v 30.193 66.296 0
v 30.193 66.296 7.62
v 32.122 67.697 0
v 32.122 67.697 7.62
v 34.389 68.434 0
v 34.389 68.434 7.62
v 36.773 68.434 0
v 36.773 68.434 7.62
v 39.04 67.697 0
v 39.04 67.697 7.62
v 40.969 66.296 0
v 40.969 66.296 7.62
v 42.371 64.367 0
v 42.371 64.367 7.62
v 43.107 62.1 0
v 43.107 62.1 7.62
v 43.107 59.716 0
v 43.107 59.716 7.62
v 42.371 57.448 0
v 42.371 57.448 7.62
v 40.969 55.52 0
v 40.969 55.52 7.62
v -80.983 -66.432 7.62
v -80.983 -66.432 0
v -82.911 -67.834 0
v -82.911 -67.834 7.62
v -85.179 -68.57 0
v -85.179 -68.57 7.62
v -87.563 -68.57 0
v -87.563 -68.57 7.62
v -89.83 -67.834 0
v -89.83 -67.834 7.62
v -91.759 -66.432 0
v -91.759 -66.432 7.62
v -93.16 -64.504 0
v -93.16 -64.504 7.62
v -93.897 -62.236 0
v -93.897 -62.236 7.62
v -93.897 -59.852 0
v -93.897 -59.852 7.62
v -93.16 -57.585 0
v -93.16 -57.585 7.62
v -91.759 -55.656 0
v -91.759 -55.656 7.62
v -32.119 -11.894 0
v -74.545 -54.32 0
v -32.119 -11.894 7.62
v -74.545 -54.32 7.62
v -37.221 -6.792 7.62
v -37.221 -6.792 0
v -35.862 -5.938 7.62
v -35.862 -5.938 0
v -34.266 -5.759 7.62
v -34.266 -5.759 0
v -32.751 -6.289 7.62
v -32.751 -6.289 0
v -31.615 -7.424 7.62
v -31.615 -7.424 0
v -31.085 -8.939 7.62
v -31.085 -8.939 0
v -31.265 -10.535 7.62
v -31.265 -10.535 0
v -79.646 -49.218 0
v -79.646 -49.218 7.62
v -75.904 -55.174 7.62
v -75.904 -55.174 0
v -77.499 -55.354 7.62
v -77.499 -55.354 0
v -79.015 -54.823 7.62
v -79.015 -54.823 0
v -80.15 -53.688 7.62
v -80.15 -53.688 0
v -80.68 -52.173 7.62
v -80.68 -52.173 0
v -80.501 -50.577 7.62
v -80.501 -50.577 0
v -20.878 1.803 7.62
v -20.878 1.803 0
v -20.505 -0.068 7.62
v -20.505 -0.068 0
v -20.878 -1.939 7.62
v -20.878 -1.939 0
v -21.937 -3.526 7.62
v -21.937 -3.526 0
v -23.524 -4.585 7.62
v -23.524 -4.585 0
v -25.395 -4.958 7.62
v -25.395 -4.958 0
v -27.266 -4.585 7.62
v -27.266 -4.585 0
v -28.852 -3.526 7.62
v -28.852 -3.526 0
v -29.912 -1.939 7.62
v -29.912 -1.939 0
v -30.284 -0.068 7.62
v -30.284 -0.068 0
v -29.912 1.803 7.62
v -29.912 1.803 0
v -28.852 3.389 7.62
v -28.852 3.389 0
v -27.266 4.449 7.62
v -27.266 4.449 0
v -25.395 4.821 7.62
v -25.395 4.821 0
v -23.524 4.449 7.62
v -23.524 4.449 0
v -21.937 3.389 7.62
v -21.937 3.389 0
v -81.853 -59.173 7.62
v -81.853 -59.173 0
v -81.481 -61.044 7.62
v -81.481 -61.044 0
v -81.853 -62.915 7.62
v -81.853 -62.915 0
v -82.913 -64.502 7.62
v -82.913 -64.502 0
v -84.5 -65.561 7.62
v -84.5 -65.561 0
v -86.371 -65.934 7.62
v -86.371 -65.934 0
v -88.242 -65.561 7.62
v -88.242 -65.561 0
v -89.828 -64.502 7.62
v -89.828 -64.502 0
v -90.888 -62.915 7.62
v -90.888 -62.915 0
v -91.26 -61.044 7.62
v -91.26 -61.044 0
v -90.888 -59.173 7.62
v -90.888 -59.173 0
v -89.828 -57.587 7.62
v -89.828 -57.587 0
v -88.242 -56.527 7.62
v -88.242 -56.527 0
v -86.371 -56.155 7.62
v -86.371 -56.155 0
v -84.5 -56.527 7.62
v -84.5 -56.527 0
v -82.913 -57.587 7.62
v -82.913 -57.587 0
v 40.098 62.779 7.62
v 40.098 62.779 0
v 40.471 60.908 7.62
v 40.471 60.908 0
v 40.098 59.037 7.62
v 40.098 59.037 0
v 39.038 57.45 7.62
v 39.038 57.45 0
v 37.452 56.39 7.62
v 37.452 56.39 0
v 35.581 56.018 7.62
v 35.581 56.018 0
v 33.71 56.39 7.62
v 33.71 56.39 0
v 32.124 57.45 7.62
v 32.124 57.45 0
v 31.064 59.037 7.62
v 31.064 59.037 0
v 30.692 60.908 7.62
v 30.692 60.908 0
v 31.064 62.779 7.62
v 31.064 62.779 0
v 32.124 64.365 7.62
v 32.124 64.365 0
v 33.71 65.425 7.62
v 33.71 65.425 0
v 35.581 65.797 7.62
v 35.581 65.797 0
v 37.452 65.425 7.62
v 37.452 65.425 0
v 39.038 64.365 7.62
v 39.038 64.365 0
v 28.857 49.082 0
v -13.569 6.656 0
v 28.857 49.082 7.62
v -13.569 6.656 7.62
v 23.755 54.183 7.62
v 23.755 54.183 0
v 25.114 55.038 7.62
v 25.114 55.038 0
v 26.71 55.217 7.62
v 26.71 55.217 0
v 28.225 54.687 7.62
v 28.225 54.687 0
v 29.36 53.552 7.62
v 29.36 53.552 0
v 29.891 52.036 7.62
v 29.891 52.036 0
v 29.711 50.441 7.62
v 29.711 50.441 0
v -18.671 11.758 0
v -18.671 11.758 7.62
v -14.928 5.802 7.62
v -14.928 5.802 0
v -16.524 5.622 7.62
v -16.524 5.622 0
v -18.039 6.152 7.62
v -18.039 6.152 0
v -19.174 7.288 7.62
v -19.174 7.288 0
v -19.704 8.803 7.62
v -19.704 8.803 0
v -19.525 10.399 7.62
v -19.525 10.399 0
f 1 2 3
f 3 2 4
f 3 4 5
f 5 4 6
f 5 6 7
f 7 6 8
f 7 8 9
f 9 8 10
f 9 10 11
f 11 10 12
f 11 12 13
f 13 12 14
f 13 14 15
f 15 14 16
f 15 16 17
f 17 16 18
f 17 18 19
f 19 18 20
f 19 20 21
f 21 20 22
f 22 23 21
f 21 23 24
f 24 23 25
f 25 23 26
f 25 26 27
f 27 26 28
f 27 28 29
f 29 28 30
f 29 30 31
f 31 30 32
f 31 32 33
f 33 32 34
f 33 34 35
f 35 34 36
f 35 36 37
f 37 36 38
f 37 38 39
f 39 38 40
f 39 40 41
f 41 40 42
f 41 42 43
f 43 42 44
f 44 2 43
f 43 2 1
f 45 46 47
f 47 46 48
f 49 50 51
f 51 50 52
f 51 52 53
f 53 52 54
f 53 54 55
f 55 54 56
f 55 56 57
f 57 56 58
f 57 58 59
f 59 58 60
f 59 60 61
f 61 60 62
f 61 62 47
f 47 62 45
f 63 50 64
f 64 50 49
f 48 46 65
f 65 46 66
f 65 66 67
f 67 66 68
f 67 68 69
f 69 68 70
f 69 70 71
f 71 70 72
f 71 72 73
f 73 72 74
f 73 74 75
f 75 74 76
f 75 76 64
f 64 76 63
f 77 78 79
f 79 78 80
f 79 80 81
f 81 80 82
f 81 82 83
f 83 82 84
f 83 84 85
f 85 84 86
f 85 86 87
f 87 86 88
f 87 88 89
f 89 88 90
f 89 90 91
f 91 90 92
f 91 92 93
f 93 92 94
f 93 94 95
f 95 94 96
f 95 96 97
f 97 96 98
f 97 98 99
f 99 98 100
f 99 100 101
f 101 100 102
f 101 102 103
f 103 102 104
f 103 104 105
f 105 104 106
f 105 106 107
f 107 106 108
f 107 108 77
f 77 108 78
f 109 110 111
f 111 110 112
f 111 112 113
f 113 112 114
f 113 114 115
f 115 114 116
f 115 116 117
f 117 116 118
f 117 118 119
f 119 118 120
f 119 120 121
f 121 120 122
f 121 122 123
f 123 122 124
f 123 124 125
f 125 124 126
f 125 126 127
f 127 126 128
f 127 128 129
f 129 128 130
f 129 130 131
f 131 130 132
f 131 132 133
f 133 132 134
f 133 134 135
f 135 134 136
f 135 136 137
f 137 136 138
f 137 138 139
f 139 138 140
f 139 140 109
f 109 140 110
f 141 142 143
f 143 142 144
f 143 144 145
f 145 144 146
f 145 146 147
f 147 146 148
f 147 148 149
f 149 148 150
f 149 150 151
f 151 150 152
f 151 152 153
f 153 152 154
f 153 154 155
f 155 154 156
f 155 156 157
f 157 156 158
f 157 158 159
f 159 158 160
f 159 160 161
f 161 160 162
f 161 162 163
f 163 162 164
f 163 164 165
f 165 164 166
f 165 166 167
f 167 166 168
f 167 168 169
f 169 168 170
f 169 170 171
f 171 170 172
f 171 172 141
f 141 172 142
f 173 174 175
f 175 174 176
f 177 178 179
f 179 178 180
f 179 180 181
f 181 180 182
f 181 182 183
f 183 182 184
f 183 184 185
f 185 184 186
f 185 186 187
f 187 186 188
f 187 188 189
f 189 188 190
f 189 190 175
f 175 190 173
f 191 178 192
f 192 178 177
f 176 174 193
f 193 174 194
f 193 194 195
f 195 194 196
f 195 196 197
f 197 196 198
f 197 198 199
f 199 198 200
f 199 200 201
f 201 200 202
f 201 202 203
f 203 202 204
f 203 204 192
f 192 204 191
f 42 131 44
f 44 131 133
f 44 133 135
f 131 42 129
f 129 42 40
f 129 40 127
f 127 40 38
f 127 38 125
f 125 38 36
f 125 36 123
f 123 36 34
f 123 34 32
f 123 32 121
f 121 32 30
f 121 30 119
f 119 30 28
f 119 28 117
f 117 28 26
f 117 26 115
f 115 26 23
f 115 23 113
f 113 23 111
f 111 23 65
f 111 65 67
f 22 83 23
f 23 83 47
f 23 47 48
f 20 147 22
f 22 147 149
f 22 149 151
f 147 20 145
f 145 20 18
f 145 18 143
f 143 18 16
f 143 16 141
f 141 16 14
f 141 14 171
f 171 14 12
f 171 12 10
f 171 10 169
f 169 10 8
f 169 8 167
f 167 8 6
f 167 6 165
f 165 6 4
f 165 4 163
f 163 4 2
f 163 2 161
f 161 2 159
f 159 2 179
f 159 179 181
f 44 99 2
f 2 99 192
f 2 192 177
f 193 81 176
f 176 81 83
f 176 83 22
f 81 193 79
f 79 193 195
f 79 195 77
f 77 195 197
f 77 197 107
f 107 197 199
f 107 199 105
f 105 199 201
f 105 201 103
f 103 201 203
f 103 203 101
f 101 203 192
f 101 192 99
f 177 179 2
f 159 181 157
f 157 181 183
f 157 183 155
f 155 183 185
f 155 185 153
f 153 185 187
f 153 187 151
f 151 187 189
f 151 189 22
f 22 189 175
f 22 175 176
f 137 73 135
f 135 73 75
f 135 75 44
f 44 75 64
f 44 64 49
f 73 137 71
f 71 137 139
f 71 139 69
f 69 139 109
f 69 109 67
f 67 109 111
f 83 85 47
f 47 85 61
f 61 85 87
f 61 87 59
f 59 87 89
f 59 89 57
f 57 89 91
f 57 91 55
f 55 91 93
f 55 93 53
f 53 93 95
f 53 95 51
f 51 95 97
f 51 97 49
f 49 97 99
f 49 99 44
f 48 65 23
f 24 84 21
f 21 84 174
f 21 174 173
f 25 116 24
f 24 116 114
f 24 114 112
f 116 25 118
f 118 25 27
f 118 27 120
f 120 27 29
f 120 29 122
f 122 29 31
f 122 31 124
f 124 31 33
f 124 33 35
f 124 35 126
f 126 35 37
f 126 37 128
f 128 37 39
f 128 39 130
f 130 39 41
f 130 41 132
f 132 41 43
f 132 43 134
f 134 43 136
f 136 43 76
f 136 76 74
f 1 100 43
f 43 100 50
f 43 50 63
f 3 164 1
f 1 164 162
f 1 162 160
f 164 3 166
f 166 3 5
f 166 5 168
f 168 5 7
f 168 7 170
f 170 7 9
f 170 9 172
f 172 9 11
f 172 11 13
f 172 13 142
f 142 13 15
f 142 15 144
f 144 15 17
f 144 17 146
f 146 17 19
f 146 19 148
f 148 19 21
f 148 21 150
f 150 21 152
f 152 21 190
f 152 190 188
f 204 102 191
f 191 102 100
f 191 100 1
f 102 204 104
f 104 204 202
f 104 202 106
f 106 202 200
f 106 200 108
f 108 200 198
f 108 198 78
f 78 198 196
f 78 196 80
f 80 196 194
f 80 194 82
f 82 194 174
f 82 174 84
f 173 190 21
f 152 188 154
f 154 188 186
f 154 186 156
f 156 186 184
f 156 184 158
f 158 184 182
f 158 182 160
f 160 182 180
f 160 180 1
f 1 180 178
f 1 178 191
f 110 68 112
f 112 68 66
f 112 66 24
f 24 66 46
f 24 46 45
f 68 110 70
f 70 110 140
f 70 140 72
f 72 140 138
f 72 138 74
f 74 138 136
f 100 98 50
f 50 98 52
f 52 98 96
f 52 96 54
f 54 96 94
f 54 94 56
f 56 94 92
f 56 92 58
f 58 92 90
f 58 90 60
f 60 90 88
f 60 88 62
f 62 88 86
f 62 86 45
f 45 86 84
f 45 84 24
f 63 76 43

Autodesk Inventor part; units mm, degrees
ref_plane "YZ Plane" through (0, 0, 0) normal (1, 0, 0) x (0, 1, 0)
ref_plane "XZ Plane" through (0, 0, 0) normal (0, 1, 0) x (-1, 0, 0)
ref_plane "XY Plane" through (0, 0, 0) normal (0, 0, 1) x (1, 0, 0)
sketch "Sketch1" plane through (0, 0, 0) normal (0, 0, 1) x (1, 0, 0)
  circle A0 centre (-86.3708, -61.0441) radius 4.8895
  circle A1 centre (-86.3708, -61.0441) radius 4.8895
  line L0 (-81.8807, -65.5342) -> (40.0712, 56.4176)
  line L1 (31.091, 65.3979) -> (-90.8609, -56.554)
  arc A2 (-90.8609, -56.554) -> (-81.8807, -65.5342) centre (-86.3708, -61.0441) ccw
  arc A3 (40.0712, 56.4176) -> (31.091, 65.3979) centre (35.5811, 60.9078) ccw
  circle A4 centre (-25.3948, -0.0682) radius 4.8895
  circle A5 centre (35.5811, 60.9078) radius 4.8895
  line L2 (-21.9374, 3.3892) -> (32.1237, 57.4504)
  line L3 (39.0385, 64.3652) -> (40.0712, 65.3979)
  line L4 (-82.9134, -57.5867) -> (-28.8522, -3.5256) construction
  line L5 (-21.9374, 3.3892) -> (32.1237, 57.4504) construction
  line L6 (-28.8522, -3.5256) -> (-82.9134, -57.5867)
  line L7 (-89.8282, -64.5015) -> (-90.8609, -65.5342)
  line L8 (-34.6701, -9.3434) -> (-77.0956, -51.7689) construction
  line L9 (-37.2209, -6.7925) -> (-79.6465, -49.218)
  line L10 (-74.5447, -54.3198) -> (-32.1192, -11.8943)
  arc A6 (-32.1192, -11.8943) -> (-37.2209, -6.7925) centre (-34.6701, -9.3434) ccw
  arc A7 (-79.6465, -49.218) -> (-74.5447, -54.3198) centre (-77.0956, -51.7689) ccw
  line L11 (-25.3948, -0.0682) -> (-29.885, 4.422)
  line L12 (-18.6705, 11.7579) -> (23.755, 54.1835)
  line L13 (28.8568, 49.0817) -> (-13.5688, 6.6562)
  arc A8 (-18.6705, 11.7579) -> (-13.5688, 6.6562) centre (-16.1196, 9.207) ccw
  arc A9 (28.8568, 49.0817) -> (23.755, 54.1835) centre (26.3059, 51.6326) ccw
  line L14 (40.9692, 55.5196) -> (-80.9826, -66.4323)
  arc A10 (-91.7589, -55.6559) -> (-80.9826, -66.4323) centre (-86.3708, -61.0441) ccw
  line L15 (-91.7589, -55.6559) -> (30.1929, 66.2959)
  arc A11 (40.9692, 55.5196) -> (30.1929, 66.2959) centre (35.5811, 60.9078) ccw
  point P0 (0, 0)
  point P1 (-55.8828, -30.5561)
  dimension "d0" = 172.466
  dimension "d2" = 12.7
  dimension "d5" = 9.779
  dimension "d6" = 9.779
  dimension "d7" = 9.779
  dimension "d10" = 1.27
extrude "Extrusion1" add sketch "Sketch1" along normal blind 7.62 contours A0 L6 A7 L10 A6 A4 L2 A8 L13 A9 A5 L3 A3 L0 A2 L7 | A0 L7 A2 L1 L11 A4 L6 A6 L9 A7 | L1 A3 L3 A5 L2 A9 L12 A8 A4 L11
extrude "Extrusion2" add sketch "Sketch1" along normal up to surface (7.62 mm away)
properties part number "Reg Arm"
